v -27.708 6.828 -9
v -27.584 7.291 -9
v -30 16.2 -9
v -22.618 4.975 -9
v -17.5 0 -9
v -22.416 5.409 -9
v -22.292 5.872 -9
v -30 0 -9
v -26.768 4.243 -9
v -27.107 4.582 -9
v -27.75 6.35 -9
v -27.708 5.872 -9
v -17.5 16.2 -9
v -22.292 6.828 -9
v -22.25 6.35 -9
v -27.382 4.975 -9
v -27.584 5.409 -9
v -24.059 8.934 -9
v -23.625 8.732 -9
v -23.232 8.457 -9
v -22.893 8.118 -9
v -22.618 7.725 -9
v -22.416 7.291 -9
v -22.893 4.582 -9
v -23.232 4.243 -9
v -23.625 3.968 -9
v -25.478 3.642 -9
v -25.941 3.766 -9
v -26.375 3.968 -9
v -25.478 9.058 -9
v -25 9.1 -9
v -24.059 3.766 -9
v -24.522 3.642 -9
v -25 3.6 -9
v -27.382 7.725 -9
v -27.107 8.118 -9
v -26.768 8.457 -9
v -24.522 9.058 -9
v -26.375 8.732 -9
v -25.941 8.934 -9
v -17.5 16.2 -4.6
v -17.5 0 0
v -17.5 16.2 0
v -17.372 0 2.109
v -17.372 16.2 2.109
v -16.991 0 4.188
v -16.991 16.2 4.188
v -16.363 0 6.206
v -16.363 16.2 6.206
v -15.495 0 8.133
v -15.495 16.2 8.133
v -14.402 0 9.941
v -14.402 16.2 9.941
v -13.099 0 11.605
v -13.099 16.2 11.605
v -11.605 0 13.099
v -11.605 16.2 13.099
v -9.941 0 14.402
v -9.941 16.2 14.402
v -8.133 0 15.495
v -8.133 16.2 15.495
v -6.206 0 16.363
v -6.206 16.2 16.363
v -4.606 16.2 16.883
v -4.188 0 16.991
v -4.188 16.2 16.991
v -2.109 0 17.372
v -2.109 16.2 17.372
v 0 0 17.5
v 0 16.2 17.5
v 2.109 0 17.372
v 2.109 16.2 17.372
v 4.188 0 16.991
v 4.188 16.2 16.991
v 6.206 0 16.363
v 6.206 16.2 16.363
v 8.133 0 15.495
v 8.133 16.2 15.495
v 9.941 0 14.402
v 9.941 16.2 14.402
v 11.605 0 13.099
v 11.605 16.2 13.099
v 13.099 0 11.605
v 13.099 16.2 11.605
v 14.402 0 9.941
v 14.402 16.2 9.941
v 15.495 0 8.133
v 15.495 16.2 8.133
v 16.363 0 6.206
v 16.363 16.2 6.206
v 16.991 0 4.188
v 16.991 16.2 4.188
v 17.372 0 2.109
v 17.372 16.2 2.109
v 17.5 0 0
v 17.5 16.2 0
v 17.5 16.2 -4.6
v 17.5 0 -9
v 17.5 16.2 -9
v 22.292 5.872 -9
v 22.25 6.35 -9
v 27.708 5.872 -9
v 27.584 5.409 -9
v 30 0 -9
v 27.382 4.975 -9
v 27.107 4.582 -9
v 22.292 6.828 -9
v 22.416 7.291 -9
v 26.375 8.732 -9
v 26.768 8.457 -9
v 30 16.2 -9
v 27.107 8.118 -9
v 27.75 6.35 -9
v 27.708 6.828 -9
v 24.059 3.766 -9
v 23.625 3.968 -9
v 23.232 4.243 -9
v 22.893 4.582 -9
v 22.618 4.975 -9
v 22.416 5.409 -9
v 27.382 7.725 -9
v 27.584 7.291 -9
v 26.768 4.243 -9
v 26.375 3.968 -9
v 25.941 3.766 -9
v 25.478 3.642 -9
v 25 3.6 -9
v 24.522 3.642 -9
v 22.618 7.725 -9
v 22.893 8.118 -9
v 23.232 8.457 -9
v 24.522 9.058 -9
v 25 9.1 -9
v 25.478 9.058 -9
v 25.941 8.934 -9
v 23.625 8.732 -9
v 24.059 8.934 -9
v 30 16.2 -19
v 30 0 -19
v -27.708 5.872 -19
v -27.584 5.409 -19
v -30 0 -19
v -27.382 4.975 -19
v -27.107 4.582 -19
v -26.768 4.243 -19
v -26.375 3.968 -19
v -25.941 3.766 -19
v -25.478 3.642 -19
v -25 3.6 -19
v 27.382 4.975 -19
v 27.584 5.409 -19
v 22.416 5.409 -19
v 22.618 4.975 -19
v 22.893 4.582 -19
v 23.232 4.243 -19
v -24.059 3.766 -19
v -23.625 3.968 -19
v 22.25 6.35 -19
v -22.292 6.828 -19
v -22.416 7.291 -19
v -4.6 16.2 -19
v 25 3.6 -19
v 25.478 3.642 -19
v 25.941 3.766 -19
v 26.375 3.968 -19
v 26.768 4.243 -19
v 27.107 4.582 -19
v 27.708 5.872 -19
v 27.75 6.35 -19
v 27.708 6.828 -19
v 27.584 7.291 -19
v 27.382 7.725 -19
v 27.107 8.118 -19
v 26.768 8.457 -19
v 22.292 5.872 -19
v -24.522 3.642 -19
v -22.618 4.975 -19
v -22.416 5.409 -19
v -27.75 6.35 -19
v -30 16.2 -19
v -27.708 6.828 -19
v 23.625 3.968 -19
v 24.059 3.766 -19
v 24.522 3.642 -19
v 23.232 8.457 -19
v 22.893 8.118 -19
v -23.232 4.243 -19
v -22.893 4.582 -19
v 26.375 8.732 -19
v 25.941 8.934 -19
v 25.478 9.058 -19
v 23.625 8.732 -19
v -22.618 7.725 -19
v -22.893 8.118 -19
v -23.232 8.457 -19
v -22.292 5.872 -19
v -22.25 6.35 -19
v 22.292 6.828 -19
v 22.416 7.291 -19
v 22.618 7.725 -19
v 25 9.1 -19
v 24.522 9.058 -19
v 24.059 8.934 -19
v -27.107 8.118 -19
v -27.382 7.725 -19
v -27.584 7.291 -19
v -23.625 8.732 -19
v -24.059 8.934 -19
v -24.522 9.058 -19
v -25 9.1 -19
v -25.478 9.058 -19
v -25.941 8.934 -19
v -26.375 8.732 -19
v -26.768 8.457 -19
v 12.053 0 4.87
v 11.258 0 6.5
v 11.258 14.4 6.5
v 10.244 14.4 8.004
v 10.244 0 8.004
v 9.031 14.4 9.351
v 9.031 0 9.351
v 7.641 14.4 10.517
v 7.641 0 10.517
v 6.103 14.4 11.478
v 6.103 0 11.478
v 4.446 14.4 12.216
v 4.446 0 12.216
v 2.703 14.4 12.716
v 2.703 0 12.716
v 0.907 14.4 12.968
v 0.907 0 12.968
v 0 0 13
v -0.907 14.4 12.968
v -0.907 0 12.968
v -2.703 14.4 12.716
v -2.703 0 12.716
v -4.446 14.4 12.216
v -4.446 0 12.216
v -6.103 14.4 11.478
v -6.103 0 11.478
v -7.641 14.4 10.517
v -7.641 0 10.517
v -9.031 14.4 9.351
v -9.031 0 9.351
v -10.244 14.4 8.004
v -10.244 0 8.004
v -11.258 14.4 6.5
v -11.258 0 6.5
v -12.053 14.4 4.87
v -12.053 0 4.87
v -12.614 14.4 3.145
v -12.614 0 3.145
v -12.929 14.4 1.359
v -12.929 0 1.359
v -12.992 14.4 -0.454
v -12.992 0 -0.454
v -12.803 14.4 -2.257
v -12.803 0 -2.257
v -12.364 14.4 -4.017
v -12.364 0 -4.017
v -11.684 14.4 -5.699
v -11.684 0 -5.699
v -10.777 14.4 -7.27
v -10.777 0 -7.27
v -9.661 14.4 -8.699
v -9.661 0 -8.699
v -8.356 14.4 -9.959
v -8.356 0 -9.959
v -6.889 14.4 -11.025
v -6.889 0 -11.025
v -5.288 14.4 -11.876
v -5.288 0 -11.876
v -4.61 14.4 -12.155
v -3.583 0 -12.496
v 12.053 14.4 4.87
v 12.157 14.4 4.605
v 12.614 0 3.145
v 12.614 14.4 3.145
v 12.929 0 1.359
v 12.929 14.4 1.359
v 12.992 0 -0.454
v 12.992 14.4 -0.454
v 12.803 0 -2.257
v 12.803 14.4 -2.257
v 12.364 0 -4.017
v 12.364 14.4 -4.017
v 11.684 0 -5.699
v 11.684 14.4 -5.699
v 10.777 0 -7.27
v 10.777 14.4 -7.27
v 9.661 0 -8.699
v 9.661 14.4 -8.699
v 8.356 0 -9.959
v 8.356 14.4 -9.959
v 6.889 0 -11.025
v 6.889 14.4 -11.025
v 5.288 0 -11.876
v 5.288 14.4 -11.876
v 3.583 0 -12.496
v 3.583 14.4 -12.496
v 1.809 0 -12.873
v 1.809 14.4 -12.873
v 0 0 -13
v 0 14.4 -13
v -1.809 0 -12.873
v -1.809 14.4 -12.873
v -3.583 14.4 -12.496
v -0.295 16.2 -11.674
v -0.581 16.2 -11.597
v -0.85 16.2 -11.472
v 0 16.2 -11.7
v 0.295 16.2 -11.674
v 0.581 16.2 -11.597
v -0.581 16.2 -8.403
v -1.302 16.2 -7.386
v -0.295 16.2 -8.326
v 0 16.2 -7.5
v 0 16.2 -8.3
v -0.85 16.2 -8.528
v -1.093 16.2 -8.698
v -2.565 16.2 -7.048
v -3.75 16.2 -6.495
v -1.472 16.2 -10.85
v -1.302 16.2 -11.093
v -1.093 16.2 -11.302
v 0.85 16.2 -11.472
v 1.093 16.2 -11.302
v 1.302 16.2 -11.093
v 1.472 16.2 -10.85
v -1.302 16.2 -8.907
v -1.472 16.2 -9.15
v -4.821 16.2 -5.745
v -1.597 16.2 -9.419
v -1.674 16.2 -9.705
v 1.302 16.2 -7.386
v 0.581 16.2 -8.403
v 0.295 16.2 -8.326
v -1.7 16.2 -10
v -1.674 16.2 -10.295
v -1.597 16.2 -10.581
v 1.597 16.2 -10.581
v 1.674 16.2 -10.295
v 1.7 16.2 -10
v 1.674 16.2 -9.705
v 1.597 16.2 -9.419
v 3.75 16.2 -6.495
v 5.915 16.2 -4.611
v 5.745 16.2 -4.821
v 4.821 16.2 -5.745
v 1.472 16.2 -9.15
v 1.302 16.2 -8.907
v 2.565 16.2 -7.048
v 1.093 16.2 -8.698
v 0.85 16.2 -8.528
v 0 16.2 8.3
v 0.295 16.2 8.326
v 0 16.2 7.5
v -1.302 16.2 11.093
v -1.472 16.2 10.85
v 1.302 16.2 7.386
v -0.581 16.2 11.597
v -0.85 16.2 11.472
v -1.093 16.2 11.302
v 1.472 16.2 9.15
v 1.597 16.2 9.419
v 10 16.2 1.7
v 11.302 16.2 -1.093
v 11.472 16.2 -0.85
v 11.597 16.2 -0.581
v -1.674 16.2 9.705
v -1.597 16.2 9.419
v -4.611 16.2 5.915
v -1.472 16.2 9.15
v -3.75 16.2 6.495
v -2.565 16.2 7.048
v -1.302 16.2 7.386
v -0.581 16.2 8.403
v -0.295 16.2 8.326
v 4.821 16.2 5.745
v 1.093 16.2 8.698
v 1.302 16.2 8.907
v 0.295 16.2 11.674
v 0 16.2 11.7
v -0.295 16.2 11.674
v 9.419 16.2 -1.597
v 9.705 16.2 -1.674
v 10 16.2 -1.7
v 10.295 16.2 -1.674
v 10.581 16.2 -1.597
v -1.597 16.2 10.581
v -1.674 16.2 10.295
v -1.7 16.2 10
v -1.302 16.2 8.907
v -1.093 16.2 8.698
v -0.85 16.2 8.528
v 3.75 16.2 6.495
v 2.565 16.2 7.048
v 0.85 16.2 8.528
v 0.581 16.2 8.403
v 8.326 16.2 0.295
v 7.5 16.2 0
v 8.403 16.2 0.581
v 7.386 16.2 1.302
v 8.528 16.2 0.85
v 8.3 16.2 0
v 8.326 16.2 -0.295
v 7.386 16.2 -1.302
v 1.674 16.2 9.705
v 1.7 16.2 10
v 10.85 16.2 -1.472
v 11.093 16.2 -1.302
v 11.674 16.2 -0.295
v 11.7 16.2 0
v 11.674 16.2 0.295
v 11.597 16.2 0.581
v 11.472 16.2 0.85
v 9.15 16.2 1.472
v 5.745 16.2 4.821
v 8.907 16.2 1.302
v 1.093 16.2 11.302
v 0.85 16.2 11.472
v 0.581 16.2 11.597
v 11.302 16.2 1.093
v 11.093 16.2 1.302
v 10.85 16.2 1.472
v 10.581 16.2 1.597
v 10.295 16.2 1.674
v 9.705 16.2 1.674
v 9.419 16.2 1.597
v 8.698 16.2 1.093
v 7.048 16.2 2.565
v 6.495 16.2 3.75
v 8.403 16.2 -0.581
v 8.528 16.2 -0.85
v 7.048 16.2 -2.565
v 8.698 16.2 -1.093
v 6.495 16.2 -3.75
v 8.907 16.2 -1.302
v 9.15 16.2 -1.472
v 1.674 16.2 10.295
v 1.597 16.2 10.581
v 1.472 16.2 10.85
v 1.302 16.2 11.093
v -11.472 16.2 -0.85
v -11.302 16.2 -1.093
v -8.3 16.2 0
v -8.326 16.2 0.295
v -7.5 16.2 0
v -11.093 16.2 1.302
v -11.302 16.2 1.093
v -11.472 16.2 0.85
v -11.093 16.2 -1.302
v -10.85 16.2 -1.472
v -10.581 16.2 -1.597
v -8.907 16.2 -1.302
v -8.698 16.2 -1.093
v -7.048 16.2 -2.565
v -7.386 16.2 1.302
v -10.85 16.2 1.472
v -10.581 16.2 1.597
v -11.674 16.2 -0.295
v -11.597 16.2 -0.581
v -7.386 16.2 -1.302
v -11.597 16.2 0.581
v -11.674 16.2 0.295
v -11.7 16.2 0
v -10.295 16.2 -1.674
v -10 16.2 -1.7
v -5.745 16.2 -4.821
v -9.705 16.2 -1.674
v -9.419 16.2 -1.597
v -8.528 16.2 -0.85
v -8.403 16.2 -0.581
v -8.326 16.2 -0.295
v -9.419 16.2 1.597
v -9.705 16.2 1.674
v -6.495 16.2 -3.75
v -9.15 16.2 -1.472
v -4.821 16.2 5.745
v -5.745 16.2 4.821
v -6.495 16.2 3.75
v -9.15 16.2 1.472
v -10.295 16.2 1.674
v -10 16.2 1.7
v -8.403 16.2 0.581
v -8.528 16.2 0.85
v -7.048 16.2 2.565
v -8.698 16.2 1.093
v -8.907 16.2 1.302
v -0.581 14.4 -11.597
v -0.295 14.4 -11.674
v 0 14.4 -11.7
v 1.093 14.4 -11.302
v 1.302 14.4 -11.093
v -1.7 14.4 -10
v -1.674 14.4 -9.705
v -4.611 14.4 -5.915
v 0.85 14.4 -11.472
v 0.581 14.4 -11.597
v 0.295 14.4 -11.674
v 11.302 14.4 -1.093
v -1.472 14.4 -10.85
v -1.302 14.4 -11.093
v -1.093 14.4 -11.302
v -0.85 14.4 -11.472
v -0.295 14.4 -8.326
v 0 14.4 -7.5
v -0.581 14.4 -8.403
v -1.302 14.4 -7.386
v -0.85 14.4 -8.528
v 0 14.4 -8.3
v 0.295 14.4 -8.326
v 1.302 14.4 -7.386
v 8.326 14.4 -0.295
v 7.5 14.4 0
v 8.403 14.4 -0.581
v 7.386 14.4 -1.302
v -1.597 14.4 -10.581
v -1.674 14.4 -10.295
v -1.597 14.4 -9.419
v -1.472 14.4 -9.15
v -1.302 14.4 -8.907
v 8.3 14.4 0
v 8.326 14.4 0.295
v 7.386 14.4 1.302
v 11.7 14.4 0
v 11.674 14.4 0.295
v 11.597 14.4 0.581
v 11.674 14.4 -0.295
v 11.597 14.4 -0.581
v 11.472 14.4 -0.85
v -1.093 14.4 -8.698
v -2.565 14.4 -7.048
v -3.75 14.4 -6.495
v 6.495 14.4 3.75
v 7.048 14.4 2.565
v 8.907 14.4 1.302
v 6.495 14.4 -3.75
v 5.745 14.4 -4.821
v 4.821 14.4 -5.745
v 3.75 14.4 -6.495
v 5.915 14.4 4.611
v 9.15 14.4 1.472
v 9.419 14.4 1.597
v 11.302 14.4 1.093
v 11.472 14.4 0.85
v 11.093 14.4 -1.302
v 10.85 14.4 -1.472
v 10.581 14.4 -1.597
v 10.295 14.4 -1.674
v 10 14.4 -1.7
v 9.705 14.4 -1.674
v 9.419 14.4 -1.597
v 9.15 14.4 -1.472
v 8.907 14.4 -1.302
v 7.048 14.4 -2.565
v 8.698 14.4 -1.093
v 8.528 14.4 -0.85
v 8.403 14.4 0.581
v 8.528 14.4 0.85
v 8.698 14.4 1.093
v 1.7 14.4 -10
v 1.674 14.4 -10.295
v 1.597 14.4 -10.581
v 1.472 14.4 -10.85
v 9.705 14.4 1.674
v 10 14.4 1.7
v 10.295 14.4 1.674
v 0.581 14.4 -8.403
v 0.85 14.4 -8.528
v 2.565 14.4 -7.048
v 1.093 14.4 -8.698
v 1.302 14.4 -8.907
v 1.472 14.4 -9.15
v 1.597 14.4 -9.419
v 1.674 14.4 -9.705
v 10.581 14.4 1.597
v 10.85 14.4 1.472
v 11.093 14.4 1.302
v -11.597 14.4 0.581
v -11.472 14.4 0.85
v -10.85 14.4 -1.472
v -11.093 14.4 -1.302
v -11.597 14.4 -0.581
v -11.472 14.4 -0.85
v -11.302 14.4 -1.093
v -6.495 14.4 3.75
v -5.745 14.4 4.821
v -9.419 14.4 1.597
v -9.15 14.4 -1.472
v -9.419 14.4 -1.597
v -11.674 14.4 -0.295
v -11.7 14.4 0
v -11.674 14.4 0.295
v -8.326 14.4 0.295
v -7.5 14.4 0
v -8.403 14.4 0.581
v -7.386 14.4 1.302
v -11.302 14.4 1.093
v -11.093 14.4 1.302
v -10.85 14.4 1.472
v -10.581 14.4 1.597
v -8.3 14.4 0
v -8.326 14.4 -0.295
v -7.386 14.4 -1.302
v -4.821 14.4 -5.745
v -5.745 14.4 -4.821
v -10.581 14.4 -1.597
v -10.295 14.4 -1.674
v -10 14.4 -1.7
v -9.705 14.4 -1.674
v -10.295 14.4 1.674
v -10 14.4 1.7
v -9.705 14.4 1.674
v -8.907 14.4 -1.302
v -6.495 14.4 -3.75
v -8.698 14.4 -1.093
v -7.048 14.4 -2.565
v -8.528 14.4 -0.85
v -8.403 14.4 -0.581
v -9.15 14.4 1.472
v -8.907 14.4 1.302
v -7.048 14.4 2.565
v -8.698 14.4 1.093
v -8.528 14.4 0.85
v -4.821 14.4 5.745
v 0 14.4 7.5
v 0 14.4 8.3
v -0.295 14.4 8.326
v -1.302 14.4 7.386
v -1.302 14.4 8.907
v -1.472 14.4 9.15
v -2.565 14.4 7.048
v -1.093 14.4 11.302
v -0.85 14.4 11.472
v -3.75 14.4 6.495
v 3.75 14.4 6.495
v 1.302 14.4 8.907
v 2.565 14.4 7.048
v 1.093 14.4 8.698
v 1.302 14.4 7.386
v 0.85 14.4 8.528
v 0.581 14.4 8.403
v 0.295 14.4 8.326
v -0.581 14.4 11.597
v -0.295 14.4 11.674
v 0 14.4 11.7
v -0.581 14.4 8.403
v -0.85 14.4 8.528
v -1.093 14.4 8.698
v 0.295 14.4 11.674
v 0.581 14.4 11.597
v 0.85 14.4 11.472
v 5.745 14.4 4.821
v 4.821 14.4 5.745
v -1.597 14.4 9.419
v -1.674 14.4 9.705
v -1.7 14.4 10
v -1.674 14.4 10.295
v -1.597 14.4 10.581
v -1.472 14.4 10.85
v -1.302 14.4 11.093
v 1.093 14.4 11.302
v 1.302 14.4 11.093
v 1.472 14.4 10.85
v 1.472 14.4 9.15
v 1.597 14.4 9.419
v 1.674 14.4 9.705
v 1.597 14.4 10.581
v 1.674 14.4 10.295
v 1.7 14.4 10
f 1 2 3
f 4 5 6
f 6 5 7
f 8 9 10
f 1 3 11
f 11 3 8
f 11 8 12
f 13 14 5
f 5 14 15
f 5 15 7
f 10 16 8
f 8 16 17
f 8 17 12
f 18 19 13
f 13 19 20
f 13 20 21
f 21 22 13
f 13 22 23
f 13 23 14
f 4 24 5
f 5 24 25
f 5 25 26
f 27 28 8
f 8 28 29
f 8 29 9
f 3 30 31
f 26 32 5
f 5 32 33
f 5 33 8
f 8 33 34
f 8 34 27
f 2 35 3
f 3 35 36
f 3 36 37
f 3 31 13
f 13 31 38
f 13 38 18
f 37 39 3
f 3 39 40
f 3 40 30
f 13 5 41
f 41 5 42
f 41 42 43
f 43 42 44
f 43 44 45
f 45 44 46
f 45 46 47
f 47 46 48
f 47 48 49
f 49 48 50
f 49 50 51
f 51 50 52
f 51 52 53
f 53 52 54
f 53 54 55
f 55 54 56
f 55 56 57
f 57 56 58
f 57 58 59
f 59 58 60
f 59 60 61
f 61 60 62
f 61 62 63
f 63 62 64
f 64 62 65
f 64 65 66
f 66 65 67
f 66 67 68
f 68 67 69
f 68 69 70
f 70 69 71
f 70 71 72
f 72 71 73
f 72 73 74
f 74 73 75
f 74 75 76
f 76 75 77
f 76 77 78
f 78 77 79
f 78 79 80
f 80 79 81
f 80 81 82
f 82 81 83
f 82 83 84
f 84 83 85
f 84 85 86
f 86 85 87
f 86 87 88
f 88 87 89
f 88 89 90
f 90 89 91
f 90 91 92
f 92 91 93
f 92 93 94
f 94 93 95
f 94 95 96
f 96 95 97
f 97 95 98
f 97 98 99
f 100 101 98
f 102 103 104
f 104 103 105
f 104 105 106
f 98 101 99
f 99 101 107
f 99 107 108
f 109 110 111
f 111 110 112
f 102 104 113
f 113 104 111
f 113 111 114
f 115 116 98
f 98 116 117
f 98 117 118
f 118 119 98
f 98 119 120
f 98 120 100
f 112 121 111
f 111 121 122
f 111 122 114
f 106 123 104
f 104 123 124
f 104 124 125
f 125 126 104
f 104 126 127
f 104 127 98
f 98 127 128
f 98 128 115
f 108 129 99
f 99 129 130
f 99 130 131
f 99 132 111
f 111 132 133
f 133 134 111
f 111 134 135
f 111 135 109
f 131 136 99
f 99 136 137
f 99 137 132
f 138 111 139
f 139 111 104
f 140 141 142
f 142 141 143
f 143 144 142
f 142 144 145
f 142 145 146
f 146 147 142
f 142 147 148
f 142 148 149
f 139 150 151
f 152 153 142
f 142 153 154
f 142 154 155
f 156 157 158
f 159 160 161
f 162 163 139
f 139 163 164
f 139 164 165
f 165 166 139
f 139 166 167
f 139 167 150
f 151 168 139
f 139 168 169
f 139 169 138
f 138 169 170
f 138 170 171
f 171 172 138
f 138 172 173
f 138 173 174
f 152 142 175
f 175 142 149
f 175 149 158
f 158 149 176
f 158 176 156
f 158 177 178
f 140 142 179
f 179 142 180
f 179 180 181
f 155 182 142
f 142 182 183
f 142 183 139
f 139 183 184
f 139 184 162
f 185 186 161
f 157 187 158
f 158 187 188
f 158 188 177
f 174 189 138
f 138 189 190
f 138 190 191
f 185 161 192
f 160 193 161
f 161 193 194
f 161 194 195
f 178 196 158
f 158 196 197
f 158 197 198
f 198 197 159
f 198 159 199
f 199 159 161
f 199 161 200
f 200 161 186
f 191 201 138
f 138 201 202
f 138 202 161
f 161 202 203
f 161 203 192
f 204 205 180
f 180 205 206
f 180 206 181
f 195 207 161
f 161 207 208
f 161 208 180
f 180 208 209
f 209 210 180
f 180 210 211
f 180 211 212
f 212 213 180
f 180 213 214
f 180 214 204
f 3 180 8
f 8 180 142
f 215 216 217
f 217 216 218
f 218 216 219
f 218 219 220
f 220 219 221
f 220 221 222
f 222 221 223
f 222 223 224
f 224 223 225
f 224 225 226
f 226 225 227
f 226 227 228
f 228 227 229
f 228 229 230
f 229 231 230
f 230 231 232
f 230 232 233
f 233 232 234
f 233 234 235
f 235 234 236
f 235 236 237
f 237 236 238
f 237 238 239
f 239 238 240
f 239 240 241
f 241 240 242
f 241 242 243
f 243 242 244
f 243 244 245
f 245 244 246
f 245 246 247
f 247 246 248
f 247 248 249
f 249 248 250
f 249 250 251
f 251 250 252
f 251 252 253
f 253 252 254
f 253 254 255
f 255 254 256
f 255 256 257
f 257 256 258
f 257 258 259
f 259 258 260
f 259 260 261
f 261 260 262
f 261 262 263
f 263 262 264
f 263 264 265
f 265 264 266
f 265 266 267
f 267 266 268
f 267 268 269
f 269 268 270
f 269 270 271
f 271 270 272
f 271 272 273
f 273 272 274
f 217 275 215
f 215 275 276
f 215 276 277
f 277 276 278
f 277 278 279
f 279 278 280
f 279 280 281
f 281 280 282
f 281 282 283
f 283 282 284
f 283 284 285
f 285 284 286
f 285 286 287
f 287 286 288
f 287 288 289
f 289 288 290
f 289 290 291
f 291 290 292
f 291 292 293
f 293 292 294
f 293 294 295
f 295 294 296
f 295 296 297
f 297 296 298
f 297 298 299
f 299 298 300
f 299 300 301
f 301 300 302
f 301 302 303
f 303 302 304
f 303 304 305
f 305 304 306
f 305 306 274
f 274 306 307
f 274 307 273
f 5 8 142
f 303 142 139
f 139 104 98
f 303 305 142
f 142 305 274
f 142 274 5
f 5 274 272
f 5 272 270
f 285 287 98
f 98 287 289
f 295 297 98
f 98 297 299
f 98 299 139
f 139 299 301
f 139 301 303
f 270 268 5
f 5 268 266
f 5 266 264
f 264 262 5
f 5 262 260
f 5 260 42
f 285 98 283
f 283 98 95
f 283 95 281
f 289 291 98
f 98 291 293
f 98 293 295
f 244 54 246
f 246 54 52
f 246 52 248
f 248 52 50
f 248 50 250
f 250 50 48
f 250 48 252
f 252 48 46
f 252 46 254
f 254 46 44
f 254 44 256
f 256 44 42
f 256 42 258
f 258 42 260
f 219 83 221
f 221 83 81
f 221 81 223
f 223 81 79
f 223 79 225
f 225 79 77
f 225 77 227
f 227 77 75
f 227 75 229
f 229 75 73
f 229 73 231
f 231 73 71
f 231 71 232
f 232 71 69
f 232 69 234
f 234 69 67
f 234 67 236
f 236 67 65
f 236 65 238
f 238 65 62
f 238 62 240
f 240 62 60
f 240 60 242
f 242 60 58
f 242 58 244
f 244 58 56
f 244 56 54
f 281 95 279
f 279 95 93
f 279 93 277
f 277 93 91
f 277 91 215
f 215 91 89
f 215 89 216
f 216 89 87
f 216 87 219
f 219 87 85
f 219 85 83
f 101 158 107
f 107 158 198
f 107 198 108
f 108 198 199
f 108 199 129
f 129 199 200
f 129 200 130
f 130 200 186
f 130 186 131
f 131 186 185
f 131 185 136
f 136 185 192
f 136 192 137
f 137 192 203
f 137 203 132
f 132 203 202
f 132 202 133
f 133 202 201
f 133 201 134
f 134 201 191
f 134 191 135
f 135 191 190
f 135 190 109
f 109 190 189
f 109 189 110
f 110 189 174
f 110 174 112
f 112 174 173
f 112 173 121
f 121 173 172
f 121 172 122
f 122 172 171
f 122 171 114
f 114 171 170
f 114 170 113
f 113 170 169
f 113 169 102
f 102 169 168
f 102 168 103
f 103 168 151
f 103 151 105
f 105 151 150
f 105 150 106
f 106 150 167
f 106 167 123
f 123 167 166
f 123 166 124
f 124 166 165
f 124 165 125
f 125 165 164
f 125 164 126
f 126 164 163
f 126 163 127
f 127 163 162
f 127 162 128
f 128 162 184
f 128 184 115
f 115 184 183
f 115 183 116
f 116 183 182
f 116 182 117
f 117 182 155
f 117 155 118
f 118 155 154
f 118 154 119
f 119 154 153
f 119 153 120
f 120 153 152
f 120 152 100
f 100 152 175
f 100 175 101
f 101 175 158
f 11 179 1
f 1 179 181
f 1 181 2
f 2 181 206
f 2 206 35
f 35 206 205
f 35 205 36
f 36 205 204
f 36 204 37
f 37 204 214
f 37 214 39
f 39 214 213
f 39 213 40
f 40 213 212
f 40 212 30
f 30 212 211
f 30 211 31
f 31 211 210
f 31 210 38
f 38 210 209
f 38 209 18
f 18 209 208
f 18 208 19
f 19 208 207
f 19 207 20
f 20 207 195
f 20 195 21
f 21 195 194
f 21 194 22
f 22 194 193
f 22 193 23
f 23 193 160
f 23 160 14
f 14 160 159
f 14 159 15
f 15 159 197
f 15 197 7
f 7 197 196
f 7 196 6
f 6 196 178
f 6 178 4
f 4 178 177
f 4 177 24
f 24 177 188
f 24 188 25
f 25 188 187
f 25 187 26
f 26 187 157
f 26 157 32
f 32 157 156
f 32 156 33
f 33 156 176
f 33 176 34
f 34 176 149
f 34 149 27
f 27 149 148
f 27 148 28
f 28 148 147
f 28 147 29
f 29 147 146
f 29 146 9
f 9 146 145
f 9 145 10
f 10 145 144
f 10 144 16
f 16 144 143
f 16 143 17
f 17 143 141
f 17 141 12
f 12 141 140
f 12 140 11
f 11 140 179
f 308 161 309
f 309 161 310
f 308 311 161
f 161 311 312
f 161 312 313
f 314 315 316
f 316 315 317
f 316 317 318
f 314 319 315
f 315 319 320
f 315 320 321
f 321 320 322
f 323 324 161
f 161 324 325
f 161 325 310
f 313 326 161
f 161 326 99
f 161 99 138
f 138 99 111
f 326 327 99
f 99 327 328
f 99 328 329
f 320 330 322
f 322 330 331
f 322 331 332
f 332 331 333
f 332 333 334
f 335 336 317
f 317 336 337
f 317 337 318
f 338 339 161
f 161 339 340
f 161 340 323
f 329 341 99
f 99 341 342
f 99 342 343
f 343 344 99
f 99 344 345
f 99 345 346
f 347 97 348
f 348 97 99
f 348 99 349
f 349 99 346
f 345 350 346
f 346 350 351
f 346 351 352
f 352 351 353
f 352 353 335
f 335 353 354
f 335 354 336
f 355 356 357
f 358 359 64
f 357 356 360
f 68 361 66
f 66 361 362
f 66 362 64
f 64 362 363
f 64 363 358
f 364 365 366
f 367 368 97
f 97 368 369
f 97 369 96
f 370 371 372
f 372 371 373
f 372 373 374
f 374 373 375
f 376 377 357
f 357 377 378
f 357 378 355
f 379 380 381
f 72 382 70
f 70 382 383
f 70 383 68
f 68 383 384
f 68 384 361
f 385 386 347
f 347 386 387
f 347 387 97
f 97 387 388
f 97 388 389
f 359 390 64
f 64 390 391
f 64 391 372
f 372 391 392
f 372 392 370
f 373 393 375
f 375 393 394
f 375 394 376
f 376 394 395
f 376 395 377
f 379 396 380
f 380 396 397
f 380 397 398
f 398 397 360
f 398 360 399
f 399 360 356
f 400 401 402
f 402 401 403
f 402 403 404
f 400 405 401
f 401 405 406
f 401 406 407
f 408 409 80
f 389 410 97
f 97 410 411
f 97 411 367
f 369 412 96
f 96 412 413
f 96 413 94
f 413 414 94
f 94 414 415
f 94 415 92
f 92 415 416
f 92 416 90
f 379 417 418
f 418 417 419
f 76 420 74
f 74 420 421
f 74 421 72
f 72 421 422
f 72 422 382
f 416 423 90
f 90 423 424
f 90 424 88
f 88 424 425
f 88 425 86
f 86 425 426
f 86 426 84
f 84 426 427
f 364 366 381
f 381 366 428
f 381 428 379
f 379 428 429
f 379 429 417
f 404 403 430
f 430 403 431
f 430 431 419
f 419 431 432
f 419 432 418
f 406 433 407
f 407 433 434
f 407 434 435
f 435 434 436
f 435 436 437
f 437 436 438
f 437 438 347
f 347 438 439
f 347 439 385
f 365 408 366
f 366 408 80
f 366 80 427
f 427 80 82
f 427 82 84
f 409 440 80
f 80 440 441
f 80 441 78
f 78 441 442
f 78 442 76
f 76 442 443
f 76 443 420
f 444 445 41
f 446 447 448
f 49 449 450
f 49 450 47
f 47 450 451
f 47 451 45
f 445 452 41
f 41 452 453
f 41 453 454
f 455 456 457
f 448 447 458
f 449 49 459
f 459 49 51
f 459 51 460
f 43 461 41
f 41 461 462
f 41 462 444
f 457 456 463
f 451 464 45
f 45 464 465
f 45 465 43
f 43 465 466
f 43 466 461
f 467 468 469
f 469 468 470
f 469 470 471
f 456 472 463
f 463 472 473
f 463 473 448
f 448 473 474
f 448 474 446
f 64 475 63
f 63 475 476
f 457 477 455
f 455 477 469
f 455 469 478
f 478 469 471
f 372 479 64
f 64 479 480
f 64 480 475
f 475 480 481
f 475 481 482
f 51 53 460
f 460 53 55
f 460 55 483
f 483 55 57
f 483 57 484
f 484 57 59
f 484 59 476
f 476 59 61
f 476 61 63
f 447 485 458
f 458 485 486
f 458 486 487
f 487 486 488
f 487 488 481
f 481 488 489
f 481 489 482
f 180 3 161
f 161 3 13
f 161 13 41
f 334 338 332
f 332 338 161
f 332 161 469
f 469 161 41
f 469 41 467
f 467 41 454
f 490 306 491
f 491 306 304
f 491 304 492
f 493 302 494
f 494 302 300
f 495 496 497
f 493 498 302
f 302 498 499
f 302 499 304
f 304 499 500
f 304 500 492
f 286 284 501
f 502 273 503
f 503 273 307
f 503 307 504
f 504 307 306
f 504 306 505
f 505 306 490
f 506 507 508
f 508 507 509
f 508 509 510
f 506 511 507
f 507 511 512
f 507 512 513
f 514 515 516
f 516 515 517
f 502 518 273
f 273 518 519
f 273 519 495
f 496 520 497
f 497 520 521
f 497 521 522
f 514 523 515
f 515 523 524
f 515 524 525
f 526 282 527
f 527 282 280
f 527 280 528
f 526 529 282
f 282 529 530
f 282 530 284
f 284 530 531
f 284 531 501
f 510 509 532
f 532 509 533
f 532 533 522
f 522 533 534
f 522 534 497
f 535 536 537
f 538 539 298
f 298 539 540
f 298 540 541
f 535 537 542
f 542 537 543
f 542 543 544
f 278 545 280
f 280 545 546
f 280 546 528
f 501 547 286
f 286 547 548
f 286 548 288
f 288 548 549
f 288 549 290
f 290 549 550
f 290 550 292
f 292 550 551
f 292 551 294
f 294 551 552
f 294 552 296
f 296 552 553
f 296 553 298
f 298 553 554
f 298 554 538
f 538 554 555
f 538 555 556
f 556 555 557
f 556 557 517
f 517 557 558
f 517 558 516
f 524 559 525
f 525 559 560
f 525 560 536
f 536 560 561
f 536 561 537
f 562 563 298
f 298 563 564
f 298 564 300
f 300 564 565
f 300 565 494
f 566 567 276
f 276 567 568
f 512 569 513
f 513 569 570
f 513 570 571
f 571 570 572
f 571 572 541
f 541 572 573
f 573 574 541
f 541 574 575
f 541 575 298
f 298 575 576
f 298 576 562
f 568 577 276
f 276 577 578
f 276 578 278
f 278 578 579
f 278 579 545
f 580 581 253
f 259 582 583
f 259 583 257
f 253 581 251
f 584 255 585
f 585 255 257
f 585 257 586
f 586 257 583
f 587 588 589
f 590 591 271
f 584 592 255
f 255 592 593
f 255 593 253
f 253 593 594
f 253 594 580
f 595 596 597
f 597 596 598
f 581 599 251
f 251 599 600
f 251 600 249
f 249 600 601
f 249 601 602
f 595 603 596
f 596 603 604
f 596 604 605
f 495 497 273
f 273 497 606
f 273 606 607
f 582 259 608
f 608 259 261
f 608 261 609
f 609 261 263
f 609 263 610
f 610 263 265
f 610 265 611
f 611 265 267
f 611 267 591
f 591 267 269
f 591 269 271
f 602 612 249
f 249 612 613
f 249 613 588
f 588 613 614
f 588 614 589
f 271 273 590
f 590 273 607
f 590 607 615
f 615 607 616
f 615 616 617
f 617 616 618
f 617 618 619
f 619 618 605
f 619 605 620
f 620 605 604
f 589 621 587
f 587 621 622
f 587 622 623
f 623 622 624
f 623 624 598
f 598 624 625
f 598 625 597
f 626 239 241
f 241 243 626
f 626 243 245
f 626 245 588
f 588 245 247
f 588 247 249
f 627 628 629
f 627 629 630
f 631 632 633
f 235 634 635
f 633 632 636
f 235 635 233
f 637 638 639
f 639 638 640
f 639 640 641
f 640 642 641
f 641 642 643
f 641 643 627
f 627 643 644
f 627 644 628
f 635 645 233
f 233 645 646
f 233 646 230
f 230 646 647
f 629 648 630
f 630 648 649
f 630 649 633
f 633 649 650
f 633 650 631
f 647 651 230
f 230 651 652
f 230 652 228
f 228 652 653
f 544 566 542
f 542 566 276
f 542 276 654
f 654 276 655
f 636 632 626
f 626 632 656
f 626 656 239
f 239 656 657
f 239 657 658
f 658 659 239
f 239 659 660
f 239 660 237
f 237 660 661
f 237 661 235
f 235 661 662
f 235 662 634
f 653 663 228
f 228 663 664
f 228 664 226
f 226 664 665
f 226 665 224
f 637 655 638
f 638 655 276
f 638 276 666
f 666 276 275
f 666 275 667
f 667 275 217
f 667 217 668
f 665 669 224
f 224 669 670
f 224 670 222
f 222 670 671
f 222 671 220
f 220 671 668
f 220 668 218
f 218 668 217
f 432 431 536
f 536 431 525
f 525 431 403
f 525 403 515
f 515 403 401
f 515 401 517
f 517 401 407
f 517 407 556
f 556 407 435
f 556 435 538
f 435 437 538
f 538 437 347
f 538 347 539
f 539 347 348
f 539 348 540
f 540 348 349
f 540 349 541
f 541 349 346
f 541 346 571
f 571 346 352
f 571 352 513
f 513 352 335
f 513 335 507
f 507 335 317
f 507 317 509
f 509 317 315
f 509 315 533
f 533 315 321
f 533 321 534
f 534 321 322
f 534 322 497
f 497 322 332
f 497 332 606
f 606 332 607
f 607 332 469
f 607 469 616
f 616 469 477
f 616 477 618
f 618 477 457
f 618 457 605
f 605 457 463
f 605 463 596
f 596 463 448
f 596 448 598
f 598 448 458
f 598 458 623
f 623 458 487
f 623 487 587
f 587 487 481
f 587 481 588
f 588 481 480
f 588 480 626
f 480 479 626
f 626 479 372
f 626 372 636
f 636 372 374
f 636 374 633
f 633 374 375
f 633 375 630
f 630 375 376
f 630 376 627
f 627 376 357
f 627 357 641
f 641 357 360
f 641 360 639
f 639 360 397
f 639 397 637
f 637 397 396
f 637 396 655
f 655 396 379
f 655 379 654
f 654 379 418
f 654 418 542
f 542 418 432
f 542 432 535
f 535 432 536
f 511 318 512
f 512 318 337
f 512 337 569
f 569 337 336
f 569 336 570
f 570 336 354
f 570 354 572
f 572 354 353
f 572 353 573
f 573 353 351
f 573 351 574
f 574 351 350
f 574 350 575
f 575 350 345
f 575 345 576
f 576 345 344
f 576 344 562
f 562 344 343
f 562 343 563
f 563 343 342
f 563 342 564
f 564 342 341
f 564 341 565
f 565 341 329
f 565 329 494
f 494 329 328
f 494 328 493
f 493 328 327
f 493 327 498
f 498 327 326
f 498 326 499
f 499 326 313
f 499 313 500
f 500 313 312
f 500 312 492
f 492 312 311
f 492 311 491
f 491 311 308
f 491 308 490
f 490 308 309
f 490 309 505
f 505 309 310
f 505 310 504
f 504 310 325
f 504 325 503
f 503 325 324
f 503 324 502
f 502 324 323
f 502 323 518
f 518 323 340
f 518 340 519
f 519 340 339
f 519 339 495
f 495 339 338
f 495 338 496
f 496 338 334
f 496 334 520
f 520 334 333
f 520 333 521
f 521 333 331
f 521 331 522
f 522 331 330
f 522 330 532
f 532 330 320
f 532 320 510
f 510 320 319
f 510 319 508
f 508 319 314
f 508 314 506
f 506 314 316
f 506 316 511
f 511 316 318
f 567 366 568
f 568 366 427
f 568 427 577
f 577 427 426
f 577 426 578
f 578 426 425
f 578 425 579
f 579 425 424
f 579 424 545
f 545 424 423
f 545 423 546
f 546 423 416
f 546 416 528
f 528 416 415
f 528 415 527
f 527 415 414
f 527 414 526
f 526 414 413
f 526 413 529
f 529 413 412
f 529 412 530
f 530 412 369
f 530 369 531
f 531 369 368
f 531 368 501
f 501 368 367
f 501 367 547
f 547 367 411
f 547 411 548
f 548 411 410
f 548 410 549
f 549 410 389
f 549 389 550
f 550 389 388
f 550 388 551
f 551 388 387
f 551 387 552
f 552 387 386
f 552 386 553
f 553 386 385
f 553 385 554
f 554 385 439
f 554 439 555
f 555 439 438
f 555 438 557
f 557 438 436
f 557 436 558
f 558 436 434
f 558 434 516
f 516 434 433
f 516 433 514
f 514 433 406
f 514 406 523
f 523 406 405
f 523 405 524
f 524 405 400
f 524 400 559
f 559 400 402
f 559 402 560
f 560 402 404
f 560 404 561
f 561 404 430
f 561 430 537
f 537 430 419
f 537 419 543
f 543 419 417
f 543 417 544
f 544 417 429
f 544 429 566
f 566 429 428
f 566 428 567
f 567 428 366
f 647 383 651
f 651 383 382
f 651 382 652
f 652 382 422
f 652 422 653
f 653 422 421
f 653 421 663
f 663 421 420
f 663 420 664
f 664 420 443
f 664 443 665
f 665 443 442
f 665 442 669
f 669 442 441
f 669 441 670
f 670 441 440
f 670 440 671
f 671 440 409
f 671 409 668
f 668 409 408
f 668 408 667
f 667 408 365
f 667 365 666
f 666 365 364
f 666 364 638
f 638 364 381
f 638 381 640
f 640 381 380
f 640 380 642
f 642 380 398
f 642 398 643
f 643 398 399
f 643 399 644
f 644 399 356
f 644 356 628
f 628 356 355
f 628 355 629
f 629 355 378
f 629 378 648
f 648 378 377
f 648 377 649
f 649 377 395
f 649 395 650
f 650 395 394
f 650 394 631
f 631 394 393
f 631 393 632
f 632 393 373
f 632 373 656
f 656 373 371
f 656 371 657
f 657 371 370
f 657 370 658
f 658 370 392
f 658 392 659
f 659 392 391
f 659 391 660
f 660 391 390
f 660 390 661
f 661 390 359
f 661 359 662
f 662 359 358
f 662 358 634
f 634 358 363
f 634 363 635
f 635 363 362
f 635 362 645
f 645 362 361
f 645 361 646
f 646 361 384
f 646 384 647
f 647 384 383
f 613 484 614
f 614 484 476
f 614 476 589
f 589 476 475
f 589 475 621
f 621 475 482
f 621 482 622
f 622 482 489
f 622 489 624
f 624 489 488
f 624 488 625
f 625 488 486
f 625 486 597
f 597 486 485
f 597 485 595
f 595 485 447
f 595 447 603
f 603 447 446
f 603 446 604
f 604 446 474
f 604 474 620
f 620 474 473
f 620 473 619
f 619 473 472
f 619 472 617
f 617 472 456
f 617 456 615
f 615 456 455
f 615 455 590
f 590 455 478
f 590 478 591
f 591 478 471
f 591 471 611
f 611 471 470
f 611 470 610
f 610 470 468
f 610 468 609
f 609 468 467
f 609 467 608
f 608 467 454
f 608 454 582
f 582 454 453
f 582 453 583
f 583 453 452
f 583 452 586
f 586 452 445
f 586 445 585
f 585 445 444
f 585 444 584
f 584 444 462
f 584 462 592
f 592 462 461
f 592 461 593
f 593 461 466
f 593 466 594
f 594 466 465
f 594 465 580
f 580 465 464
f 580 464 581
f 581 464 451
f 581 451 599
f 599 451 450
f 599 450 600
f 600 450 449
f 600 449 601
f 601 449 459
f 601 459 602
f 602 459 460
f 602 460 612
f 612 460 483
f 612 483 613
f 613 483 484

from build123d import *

# Parameters (mm, degrees)
SKETCH2_R                = 13
BOSS_EXTRUDE1_DEPTH      = 12.7
M5_CLEARANCE_HOLE1_D     = 5.5
M5_CLEARANCE_HOLE1_DEPTH = 10.1
M5_CLEARANCE_HOLE1_TIP   = 1.652366702
BOSS_EXTRUDE2_DEPTH      = 3.5
SKETCH10_R               = 13
CUT_EXTRUDE1_DEPTH       = 1.7
SKETCH11_R               = 7.5
CUT_EXTRUDE2_DEPTH       = 17.2
M3_CLEARANCE_HOLE1_D     = 3.4
M3_CLEARANCE_HOLE1_DEPTH = 7.5
M3_CLEARANCE_HOLE1_TIP   = 1.021463052


with BuildPart() as part:
    # Sketch2 → Boss-Extrude1 (new body)
    with BuildSketch(Plane(origin=(0, 0, 0), x_dir=(1, 0, 0), z_dir=(0, 1, 0))):
        with BuildLine():
            Line((-30, 9), (-17.5, 9))
            Line((-17.5, 9), (-17.5, 0))
            ThreePointArc((-17.5, 0), (0, -17.5), (17.5, 0))
            Line((17.5, 0), (17.5, 9))
            Line((17.5, 9), (30, 9))
            Line((30, 9), (30, 19))
            Line((30, 19), (-30, 19))
            Line((-30, 19), (-30, 9))
        make_face()
        Circle(SKETCH2_R, mode=Mode.SUBTRACT)
    extrude(amount=BOSS_EXTRUDE1_DEPTH)

    # M5 Clearance Hole1
    with Locations(Plane(origin=(-25, 6.35, -19), x_dir=(-1, 0, 0), z_dir=(0, 0, -1))):
        with Locations((0, 0), (-50, 0)):
            Hole(M5_CLEARANCE_HOLE1_D / 2, depth=M5_CLEARANCE_HOLE1_DEPTH)
            with Locations((0, 0, -(M5_CLEARANCE_HOLE1_DEPTH + M5_CLEARANCE_HOLE1_TIP / 2))):  # 118° drill point
                Cone(0, M5_CLEARANCE_HOLE1_D / 2, M5_CLEARANCE_HOLE1_TIP, mode=Mode.SUBTRACT)

    # Sketch9 → Boss-Extrude2 (add)
    with BuildSketch(Plane(origin=(0, 12.7, 0), x_dir=(1, 0, 0), z_dir=(0, 1, 0))):
        with BuildLine():
            Line((-30, 9), (-17.5, 9))
            Line((-17.5, 9), (-17.5, 0))
            ThreePointArc((-17.5, 0), (0, -17.5), (17.5, 0))
            Line((17.5, 0), (17.5, 9))
            Line((17.5, 9), (30, 9))
            Line((30, 9), (30, 19))
            Line((30, 19), (-30, 19))
            Line((-30, 19), (-30, 9))
        make_face()
    extrude(amount=BOSS_EXTRUDE2_DEPTH)

    # Sketch10 → Cut-Extrude1 (cut)
    with BuildSketch(Plane.XZ.offset(-12.7)):
        Circle(SKETCH10_R)
    extrude(amount=-CUT_EXTRUDE1_DEPTH, mode=Mode.SUBTRACT)

    # Sketch11 → Cut-Extrude2 (cut, through all)
    with BuildSketch(Plane(origin=(0, 16.2, 0), x_dir=(1, 0, 0), z_dir=(0, 1, 0))):
        Circle(SKETCH11_R)
    extrude(amount=-CUT_EXTRUDE2_DEPTH, mode=Mode.SUBTRACT)

    # M3 Clearance Hole1
    with Locations(Plane(origin=(-10, 16.2, 0), x_dir=(0, 0, 1), z_dir=(0, 1, 0))):
        with Locations((0, 0), (10, 10), (0, 20), (-10, 10)):
            Hole(M3_CLEARANCE_HOLE1_D / 2, depth=M3_CLEARANCE_HOLE1_DEPTH)
            with Locations((0, 0, -(M3_CLEARANCE_HOLE1_DEPTH + M3_CLEARANCE_HOLE1_TIP / 2))):  # 118° drill point
                Cone(0, M3_CLEARANCE_HOLE1_D / 2, M3_CLEARANCE_HOLE1_TIP, mode=Mode.SUBTRACT)


solid = part.part
